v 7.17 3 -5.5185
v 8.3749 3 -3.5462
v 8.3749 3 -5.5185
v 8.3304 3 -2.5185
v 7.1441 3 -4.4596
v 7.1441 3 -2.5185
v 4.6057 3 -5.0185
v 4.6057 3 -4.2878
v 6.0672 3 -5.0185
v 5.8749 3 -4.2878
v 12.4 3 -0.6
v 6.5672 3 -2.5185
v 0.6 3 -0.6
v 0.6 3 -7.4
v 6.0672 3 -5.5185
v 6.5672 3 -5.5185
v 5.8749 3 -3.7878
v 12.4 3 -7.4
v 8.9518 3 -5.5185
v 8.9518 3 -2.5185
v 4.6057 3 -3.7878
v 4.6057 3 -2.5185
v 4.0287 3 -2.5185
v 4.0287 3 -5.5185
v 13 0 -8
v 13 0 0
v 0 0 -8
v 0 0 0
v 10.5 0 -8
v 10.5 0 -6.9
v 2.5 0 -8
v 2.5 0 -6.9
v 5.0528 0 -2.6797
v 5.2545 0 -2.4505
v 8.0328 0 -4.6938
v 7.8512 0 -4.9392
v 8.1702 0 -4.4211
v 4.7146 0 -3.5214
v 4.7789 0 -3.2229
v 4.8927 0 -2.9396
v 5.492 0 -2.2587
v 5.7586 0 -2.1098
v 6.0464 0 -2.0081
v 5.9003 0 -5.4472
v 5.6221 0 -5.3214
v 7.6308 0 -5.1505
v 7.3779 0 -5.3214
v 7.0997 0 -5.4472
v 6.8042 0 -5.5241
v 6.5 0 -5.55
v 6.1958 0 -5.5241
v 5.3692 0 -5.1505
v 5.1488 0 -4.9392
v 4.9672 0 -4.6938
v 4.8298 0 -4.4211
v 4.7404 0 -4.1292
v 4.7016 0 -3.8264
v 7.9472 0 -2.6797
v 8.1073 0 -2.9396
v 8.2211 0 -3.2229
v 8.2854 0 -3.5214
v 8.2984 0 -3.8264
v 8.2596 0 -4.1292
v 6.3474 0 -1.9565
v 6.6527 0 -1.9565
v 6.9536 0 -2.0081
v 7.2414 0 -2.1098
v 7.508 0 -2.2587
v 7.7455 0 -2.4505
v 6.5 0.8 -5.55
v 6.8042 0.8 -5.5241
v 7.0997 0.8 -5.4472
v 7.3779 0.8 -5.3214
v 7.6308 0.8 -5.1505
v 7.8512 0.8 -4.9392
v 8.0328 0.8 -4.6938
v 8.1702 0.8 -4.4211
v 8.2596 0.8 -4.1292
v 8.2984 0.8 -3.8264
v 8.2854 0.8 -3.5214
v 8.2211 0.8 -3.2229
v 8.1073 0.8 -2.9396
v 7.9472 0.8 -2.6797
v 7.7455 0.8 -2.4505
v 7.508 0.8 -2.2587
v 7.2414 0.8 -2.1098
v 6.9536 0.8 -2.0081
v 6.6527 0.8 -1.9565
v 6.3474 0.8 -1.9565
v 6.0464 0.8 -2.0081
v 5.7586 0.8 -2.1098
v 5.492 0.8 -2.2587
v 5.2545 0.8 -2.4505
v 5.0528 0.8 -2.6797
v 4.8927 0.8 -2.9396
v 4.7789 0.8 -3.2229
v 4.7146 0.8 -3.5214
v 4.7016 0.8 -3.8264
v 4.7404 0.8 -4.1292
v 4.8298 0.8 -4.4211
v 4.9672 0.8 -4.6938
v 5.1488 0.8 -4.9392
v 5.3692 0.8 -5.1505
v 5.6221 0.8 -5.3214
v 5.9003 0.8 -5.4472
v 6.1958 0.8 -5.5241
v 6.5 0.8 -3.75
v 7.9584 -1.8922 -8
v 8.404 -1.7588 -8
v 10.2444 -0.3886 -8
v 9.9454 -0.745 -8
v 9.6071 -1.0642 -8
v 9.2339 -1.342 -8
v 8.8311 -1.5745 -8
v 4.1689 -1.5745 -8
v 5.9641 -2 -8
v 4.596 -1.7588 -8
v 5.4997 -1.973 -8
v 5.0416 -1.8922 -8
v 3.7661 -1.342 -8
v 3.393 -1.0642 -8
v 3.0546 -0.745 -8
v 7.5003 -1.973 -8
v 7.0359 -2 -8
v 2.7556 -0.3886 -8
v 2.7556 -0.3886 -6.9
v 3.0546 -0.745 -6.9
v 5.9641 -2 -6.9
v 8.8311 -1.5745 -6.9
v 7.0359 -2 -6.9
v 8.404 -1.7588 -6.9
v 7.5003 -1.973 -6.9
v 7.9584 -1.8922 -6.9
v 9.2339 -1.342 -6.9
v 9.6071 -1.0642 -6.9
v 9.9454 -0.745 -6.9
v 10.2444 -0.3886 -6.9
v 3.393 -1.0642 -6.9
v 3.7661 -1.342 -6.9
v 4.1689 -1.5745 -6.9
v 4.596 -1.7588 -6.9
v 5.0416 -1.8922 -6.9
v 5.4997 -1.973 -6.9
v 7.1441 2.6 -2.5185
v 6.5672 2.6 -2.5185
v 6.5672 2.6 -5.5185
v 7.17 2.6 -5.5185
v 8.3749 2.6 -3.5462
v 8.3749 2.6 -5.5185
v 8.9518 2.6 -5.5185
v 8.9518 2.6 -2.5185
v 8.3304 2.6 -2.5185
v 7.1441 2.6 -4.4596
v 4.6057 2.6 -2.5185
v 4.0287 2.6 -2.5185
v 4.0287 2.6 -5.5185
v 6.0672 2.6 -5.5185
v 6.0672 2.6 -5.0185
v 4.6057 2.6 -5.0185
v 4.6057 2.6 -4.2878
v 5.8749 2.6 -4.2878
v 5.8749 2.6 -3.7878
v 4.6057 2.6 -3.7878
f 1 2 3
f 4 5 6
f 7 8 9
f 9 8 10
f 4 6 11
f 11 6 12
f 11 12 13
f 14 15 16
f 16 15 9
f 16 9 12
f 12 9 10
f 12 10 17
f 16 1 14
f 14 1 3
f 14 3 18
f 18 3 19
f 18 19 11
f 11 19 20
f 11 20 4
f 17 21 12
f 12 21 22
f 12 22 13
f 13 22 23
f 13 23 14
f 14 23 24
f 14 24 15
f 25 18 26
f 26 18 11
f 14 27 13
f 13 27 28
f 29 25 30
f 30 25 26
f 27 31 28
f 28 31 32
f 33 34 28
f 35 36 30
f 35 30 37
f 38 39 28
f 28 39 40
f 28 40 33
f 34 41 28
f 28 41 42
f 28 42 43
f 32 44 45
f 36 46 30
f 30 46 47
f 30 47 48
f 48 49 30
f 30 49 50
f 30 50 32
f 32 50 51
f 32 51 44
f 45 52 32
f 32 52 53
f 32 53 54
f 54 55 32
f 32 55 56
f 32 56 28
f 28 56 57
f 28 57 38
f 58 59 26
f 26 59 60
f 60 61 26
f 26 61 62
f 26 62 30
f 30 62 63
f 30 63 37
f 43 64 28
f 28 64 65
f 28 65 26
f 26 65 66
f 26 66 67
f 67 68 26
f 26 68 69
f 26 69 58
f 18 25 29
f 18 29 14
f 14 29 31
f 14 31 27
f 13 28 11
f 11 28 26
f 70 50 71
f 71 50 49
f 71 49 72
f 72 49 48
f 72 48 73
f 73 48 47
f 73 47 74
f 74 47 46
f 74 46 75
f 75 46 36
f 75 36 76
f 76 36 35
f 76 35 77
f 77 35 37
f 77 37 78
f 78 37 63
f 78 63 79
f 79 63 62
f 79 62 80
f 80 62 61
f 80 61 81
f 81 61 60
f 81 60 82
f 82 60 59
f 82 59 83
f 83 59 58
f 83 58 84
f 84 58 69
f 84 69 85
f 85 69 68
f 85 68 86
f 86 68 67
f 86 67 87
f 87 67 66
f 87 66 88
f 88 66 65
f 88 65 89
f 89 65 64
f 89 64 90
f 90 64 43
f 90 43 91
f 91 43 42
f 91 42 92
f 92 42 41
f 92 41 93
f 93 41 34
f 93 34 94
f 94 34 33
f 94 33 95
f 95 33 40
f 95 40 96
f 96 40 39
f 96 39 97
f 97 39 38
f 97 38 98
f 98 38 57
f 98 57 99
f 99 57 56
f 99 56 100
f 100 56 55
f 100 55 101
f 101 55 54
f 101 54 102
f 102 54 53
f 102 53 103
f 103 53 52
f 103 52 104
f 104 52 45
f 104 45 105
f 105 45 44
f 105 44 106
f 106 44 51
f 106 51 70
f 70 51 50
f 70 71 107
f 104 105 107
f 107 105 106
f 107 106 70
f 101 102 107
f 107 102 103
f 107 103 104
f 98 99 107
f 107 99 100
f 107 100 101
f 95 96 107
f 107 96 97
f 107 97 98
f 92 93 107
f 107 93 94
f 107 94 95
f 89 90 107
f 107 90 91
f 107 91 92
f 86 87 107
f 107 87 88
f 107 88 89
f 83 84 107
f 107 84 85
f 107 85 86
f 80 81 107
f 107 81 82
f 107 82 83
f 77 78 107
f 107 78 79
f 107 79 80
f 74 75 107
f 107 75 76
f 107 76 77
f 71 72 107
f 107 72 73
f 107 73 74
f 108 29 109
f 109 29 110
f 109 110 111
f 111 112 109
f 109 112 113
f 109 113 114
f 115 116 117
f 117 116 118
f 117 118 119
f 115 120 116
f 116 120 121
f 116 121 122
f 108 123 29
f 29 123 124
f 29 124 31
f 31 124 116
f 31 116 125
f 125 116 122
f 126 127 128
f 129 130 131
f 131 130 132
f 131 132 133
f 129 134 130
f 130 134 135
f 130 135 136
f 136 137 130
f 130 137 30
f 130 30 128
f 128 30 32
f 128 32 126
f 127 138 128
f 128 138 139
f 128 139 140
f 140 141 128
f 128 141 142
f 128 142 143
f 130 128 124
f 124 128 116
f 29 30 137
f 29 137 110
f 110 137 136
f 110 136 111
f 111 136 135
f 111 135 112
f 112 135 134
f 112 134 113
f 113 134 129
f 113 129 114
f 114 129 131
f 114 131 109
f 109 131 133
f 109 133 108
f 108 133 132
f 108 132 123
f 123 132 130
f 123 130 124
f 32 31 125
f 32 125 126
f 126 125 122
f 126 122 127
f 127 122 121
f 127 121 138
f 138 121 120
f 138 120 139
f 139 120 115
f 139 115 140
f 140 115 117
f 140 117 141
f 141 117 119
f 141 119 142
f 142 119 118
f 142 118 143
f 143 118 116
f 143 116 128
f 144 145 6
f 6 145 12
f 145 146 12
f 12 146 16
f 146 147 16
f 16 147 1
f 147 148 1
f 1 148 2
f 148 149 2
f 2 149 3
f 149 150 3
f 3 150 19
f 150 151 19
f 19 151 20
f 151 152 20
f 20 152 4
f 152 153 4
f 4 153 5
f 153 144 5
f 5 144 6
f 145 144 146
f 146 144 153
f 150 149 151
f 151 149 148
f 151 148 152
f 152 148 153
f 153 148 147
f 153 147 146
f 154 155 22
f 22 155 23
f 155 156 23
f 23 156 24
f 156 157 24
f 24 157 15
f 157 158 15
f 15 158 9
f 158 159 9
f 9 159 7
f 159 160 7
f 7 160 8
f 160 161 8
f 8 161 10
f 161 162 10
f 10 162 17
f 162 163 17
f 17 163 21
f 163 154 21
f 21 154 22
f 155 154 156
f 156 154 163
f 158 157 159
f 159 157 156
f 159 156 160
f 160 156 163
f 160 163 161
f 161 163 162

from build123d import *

# Parameters (mm, degrees)
SKETCH1_W               = 13
SKETCH1_H               = 8
BOSS_EXTRUDE1_DEPTH     = 3
CUT_EXTRUDE1_DEPTH      = 16.556349186
CUT_EXTRUDE1_DEPTH_BACK = 16.556349186
CUT_EXTRUDE2_DEPTH      = 16.556349186
CUT_EXTRUDE2_DEPTH_BACK = 16.556349186
SKETCH4_R               = 1.8
CUT_EXTRUDE3_DEPTH      = 0.8
SKETCH5_W               = 8
SKETCH5_H               = 1.1
BOSS_EXTRUDE2_DEPTH     = 2
FILLET1_R               = 4
CUT_EXTRUDE4_DEPTH      = 0.4


with BuildPart() as part:
    # Sketch1 → Boss-Extrude1 (new body)
    with BuildSketch(Plane(origin=(0, 0, 0), x_dir=(1, 0, 0), z_dir=(0, 1, 0))):
        with Locations((6.5, 4)):
            Rectangle(SKETCH1_W, SKETCH1_H)
    extrude(amount=BOSS_EXTRUDE1_DEPTH)

    # Sketch2 → Cut-Extrude1 (cut, two sides: drawn at the far end of the back side and taken through both)
    with BuildSketch(Plane.XY.offset(-CUT_EXTRUDE1_DEPTH_BACK)):
        Polygon((0, 0), (0.6, 3), (0, 3), align=None)
        Polygon((13, 0), (12.4, 3), (13, 3), align=None)
    extrude(amount=CUT_EXTRUDE1_DEPTH + CUT_EXTRUDE1_DEPTH_BACK, mode=Mode.SUBTRACT)

    # Sketch3 → Cut-Extrude2 (cut, two sides: drawn at the far end of the back side and taken through both)
    with BuildSketch(Plane(origin=(0, 0, 0), x_dir=(0, 0, -1), z_dir=(1, 0, 0)).offset(-CUT_EXTRUDE2_DEPTH_BACK)):
        Polygon((0, 0), (0.6, 3), (0, 3), align=None)
        Polygon((8, 3), (7.4, 3), (8, 0), align=None)
    extrude(amount=CUT_EXTRUDE2_DEPTH + CUT_EXTRUDE2_DEPTH_BACK, mode=Mode.SUBTRACT)

    # Sketch4 → Cut-Extrude3 (cut)
    with BuildSketch(Plane.XZ):
        with Locations(Location((6.50000125, -3.75, 0), (0, 0, 270))):
            Circle(SKETCH4_R)
    extrude(amount=-CUT_EXTRUDE3_DEPTH, mode=Mode.SUBTRACT)

    # Sketch5 → Boss-Extrude2 (add)
    with BuildSketch(Plane.XZ):
        with Locations((6.500011, -7.45)):
            Rectangle(SKETCH5_W, SKETCH5_H)
    extrude(amount=BOSS_EXTRUDE2_DEPTH)

    # Fillet1
    # the kernel refuses this fillet: 4 mm, written as the material it takes off along each edge
    with BuildSketch(Plane(origin=(10.500011, -2, -16.660254038), x_dir=(0, 1, 0), z_dir=(0, 0, 1)), Plane(origin=(2.500011, -2, 1.760254038), x_dir=(0, 1, 0), z_dir=(0, 0, -1))) as fillet1_piece_1:
        with BuildLine():
            CenterArc((4, 3.464101615), FILLET1_R, 180, 60)
            Line((0, 3.464101615), (-0.08, 3.464101615))
            Line((-0.08, 3.464101615), (-0.08, 0))
            Line((-0.08, 0), (0, -0.08))
            ThreePointArc((0, -0.08), (1, -0.08), (1.96, -0.069282032))
            Line((1.96, -0.069282032), (2, 0))
        make_face()
    extrude(amount=18.420508076, mode=Mode.SUBTRACT)

    # Sketch6 → Cut-Extrude4 (cut)
    with BuildSketch(Plane(origin=(0, 3, 0), x_dir=(1, 0, 0), z_dir=(0, 1, 0))):
        Polygon((4.028737707, 2.518536397), (4.028737707, 5.518536397), (6.067199245, 5.518536397), (6.067199245, 5.018536397), (4.605660784, 5.018536397), (4.605660784, 4.287767167), (5.874891553, 4.287767167), (5.874891553, 3.787767167), (4.605660784, 3.787767167), (4.605660784, 2.518536397), align=None)
        Polygon((6.567199245, 2.518536397), (6.567199245, 5.518536397), (7.169963668, 5.518536397), (8.374891553, 3.546180628), (8.374891553, 5.518536397), (8.95181463, 5.518536397), (8.95181463, 2.518536397), (8.330420399, 2.518536397), (7.144122322, 4.459642167), (7.144122322, 2.518536397), align=None)
    extrude(amount=-CUT_EXTRUDE4_DEPTH, mode=Mode.SUBTRACT)


solid = part.part
